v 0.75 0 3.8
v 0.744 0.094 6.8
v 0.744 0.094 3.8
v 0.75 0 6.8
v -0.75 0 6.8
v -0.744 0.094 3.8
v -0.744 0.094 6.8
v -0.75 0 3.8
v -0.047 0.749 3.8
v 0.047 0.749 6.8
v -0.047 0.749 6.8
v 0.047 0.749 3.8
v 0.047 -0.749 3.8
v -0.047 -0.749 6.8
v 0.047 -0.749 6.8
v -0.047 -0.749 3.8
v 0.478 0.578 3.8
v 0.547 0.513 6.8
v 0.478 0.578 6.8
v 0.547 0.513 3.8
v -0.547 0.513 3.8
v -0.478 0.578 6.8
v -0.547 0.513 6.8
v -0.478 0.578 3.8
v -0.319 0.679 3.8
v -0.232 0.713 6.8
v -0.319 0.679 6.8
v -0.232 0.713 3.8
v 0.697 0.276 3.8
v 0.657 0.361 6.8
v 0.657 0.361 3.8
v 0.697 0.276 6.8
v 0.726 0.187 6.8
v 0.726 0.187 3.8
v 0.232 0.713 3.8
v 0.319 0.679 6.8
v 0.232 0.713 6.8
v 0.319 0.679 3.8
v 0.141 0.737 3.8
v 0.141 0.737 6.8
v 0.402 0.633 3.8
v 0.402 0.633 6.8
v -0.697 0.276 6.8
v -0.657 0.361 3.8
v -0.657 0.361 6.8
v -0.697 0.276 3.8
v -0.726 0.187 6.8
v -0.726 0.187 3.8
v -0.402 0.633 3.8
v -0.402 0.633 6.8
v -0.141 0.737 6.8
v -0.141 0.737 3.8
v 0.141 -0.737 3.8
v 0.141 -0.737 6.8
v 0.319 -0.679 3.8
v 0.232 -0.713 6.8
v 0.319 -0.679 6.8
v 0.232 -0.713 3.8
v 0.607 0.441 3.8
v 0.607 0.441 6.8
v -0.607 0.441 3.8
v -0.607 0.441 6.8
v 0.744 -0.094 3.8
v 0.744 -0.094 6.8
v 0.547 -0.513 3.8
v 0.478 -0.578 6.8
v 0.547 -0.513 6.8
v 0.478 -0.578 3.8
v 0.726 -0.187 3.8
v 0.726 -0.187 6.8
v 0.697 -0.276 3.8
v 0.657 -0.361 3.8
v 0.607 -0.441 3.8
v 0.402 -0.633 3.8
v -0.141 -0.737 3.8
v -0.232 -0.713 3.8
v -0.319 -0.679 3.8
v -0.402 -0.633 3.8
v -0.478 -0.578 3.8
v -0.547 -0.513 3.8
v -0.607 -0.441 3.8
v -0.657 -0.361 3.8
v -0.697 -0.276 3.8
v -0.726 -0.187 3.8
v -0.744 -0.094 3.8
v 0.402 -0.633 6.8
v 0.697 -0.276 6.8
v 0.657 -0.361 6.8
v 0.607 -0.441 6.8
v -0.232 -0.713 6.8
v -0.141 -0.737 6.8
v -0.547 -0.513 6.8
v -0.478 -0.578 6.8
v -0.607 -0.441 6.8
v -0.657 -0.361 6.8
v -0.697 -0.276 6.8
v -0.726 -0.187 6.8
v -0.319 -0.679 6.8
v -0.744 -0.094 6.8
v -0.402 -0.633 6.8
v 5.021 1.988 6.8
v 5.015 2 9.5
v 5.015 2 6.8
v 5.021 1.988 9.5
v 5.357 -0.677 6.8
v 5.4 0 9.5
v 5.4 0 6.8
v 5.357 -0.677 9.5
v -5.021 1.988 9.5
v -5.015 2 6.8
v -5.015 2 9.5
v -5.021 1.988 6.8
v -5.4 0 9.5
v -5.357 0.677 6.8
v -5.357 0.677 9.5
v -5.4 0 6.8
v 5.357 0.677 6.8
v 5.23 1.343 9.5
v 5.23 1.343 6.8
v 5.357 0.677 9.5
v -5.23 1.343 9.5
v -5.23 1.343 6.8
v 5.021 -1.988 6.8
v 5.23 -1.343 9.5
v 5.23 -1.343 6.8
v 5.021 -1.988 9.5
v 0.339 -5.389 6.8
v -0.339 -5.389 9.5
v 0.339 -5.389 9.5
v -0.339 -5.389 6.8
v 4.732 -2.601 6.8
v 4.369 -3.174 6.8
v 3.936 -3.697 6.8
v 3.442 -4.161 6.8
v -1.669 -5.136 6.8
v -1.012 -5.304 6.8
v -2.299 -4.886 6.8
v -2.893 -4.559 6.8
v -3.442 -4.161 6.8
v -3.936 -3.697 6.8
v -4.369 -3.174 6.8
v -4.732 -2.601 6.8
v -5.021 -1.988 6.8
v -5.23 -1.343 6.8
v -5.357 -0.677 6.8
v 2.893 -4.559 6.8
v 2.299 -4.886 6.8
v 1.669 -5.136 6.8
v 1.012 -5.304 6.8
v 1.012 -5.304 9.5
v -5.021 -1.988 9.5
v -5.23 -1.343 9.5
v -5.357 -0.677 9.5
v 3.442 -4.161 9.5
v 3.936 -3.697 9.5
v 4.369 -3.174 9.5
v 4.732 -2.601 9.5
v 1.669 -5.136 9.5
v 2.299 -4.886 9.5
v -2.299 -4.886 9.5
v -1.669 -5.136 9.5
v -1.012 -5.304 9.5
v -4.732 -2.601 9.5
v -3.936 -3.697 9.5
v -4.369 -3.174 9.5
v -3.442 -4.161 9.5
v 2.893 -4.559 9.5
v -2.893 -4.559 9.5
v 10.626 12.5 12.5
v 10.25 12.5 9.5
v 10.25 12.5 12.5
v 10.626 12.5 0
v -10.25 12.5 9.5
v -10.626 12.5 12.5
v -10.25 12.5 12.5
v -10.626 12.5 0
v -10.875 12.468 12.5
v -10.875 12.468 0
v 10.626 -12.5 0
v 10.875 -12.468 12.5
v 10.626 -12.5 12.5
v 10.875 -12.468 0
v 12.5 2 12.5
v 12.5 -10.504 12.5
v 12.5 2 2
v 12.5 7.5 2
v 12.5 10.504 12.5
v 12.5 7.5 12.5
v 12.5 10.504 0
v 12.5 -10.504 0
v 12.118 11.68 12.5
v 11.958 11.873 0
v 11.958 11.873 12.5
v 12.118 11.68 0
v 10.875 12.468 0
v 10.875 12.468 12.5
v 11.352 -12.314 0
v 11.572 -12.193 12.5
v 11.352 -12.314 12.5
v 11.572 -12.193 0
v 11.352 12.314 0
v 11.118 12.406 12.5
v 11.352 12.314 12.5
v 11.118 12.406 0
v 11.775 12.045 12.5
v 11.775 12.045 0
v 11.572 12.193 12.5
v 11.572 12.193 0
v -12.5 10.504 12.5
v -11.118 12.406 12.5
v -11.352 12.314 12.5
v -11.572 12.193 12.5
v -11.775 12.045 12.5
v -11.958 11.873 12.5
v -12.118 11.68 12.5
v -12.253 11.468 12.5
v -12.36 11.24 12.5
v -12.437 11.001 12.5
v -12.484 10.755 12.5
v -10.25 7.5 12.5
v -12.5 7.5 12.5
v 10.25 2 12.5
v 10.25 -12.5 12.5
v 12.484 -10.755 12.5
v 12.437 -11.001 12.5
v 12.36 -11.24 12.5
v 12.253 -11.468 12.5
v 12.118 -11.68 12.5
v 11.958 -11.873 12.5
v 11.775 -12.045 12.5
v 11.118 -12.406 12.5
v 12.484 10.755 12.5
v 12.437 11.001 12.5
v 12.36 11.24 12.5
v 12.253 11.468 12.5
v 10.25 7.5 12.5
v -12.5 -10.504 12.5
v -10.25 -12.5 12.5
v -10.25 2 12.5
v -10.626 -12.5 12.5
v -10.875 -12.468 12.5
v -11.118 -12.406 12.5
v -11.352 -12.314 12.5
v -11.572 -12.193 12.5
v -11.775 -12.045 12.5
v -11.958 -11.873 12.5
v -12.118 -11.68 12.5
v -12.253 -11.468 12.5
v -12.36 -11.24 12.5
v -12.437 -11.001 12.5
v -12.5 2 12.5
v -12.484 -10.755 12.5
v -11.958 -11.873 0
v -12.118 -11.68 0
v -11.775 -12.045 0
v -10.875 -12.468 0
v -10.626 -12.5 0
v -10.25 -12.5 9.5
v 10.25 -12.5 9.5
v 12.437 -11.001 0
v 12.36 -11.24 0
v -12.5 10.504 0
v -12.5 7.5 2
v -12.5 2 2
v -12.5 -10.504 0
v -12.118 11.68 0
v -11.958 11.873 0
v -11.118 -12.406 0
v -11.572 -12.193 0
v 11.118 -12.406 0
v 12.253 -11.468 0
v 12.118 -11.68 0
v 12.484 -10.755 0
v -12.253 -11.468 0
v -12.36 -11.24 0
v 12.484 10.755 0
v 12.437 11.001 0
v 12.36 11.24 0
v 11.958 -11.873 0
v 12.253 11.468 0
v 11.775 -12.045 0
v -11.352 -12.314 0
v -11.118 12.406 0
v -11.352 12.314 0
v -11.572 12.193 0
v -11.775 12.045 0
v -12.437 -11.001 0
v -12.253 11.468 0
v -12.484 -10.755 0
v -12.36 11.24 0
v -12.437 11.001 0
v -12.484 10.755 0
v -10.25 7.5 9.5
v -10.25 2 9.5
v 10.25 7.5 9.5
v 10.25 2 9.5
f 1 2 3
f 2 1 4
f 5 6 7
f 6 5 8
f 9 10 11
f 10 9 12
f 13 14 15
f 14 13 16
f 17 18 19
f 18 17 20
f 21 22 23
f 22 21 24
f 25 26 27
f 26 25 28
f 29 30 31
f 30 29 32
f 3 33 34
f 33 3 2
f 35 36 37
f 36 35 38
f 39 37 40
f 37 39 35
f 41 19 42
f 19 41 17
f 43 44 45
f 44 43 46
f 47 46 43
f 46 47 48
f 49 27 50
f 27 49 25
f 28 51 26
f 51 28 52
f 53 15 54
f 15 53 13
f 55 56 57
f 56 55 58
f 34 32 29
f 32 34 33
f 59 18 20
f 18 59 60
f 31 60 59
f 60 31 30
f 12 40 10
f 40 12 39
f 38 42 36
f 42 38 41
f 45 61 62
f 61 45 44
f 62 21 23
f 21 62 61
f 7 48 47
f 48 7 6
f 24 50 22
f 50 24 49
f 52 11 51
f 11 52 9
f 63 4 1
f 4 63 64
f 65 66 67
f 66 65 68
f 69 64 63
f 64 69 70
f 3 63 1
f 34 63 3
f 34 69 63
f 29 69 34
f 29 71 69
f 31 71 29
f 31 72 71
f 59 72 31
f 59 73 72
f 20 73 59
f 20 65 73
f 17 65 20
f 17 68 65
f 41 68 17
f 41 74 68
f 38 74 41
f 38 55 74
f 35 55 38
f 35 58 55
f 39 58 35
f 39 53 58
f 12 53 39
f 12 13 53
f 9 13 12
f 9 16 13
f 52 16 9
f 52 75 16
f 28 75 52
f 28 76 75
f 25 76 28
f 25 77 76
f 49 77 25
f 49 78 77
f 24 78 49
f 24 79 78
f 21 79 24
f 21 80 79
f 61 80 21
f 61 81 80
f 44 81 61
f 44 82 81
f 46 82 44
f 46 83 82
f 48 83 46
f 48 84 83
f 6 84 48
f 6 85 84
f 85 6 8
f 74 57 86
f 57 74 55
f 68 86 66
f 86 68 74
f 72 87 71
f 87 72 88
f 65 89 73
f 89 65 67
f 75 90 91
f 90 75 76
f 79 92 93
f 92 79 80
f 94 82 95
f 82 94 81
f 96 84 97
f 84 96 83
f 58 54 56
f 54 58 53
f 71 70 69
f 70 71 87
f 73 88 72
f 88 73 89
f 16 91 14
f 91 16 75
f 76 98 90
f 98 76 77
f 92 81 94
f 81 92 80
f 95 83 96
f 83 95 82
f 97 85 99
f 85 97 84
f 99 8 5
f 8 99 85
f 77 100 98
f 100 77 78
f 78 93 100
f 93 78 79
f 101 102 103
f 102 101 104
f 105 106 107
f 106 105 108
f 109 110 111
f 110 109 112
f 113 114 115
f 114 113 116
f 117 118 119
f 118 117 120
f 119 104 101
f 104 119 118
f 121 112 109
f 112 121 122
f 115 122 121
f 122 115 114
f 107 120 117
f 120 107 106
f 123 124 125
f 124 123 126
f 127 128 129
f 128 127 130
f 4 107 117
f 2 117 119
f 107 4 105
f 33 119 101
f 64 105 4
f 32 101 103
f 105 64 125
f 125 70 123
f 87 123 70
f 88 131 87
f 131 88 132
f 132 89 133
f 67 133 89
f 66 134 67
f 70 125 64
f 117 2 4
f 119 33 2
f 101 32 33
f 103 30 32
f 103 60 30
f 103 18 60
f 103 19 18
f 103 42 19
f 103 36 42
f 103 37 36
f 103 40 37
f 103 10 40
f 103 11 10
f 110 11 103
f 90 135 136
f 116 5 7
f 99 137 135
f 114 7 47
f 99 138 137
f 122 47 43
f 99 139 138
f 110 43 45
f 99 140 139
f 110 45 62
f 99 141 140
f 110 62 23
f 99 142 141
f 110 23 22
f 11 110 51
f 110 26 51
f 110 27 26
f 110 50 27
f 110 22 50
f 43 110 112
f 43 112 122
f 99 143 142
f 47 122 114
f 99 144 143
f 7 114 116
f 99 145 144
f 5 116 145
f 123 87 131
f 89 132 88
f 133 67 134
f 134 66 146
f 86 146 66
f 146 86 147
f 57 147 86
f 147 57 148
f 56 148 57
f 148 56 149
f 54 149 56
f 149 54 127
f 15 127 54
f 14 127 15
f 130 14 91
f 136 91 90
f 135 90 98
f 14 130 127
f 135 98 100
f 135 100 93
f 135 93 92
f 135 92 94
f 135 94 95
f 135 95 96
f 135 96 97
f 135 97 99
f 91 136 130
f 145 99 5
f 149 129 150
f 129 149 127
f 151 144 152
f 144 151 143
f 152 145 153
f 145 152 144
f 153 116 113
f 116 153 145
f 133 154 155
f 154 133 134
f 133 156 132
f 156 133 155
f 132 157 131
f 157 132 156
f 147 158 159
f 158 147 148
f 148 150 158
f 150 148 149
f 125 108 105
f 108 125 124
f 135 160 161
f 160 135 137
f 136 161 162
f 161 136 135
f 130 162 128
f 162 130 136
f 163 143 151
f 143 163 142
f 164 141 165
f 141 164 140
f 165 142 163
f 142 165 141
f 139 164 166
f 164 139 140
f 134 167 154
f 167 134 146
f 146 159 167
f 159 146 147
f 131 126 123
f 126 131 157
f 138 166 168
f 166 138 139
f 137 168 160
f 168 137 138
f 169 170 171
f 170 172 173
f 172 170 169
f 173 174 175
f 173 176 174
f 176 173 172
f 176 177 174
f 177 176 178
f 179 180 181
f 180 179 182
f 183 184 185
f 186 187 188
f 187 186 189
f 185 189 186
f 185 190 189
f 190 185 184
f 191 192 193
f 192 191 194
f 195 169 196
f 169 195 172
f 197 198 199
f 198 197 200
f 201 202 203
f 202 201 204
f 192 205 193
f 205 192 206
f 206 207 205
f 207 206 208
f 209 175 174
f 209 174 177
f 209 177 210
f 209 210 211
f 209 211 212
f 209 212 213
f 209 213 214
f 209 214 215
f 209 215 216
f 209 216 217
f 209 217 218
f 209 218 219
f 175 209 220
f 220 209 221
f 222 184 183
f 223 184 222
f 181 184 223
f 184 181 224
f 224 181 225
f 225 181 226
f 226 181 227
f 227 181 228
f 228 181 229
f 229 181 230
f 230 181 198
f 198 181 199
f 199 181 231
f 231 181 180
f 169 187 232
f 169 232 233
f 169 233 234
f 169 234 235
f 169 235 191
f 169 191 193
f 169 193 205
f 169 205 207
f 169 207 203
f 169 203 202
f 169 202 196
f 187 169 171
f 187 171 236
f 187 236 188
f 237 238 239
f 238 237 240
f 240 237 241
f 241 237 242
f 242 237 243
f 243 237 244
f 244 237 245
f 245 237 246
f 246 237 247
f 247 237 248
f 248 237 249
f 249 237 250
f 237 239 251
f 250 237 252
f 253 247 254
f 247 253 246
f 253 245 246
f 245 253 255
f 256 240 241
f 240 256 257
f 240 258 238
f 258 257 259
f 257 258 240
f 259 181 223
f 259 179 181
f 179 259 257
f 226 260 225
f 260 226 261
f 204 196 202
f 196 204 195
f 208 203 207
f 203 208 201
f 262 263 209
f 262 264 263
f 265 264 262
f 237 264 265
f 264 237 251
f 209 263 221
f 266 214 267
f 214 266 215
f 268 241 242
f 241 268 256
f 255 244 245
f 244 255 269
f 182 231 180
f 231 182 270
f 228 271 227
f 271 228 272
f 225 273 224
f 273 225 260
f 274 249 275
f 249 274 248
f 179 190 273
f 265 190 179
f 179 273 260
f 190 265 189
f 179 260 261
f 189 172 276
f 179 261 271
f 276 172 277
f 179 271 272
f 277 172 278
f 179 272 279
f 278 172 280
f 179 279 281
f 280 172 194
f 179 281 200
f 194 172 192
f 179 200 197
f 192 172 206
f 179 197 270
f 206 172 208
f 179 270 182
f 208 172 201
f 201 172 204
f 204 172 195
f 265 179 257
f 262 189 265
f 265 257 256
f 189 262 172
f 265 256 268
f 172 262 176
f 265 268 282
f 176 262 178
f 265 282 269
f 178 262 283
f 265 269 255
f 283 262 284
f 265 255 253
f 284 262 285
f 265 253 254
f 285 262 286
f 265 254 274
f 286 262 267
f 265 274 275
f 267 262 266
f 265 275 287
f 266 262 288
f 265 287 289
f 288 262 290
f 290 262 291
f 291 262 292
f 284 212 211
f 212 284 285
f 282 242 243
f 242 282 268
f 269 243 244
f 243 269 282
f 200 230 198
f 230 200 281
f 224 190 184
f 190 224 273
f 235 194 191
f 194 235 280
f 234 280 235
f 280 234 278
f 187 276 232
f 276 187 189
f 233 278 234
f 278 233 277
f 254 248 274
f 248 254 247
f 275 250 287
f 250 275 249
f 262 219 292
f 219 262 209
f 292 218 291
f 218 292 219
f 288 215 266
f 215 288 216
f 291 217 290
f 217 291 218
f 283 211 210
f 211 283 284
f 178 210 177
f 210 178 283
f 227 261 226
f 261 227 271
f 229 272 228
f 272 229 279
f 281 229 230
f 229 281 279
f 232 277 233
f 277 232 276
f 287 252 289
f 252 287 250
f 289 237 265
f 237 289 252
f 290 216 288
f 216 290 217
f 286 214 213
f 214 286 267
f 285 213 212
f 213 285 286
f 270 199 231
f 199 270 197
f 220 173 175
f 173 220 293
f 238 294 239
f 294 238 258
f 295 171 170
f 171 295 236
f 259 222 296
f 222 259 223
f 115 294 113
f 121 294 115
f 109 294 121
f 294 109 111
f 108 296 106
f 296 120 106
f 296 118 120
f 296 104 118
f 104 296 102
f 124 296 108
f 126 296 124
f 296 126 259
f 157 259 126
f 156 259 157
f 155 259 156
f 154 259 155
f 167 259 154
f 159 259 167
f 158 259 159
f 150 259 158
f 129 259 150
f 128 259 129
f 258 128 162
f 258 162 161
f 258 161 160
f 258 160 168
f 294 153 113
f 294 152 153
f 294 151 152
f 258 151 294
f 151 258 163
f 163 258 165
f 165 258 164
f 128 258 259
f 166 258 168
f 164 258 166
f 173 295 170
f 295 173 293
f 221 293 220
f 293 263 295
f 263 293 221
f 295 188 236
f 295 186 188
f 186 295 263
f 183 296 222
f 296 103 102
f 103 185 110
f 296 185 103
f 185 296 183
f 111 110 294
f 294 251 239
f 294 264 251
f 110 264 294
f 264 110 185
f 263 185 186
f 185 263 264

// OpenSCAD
// file: scad-utils/morphology.scad
// Copyright (c) 2013 Oskar Linde. All rights reserved.
// License: BSD
//
// This library contains basic 2D morphology operations
//
// outset(d=1)            - creates a polygon at an offset d outside a 2D shape
// inset(d=1)             - creates a polygon at an offset d inside a 2D shape
// fillet(r=1)            - adds fillets of radius r to all concave corners of a 2D shape
// rounding(r=1)          - adds rounding to all convex corners of a 2D shape
// shell(d,center=false)  - makes a shell of width d along the edge of a 2D shape
//                        - positive values of d places the shell on the outside
//                        - negative values of d places the shell on the inside
//                        - center=true and positive d places the shell centered on the edge

module outset(d=1) {
	// Bug workaround for older OpenSCAD versions
	if (version_num() < 20130424) render() outset_extruded(d) children();
	else minkowski() {
		circle(r=d);
		children();
	}
}

module outset_extruded(d=1) {
   projection(cut=true) minkowski() {
        cylinder(r=d);
        linear_extrude(center=true) children();
   }
}

module inset(d=1) {
	 render() inverse() outset(d=d) inverse() children();
}

module fillet(r=1) {
	inset(d=r) render() outset(d=r) children();
}

module rounding(r=1) {
	outset(d=r) inset(d=r) children();
}

module shell(d,center=false) {
	if (center && d > 0) {
		difference() {
			outset(d=d/2) children();
			inset(d=d/2) children();
		}
	}
	if (!center && d > 0) {
		difference() {
			outset(d=d) children();
			children();
		}
	}
	if (!center && d < 0) {
		difference() {
			children();
			inset(d=-d) children();
		}
	}
	if (d == 0) children();
}


// Below are for internal use only

module inverse() {
	difference() {
		square(1e5,center=true);
		children();
	}
}


// TEST CODE

use <mirror.scad>

module arrow(l=1,w=.6,t=0.15) {
	mirror_y() polygon([[0,0],[l,0],[l-w/2,w/2],[l-w/2-sqrt(2)*t,w/2],[l-t/2-sqrt(2)*t,t/2],[0,t/2]]);
}

module shape() {
	polygon([[0,0],[1,0],[1.5,1],[2.5,1],[2,-1],[0,-1]]);
}

if(0) assign($fn=32) {

	for (p = [0:10*3-1]) assign(o=floor(p/3)) {
		translate([(p%3)*2.5,-o*3]) {
			//%if (p % 3 == 1) translate([0,0,1]) shape();
			if (p % 3 == 0) shape();
			if (p % 3 == 1) translate([0.6,0]) arrow();
			if (p % 3 == 2) {
				if (o == 0) inset(d=0.3) shape();
				if (o == 1) outset(d=0.3) shape();
				if (o == 2) rounding(r=0.3) shape();
				if (o == 3) fillet(r=0.3) shape();
				if (o == 4) shell(d=0.3) shape();
				if (o == 5) shell(d=-0.3) shape();
				if (o == 6) shell(d=0.3,center=true) shape();
				if (o == 7) rounding(r=0.3) fillet(r=0.3) shape();
				if (o == 8) shell(d=0.3,center=true) fillet(r=0.3) rounding(r=0.3) shape();
				if (o == 9) shell(d=-0.3) fillet(r=0.3) rounding(r=0.3) shape();
			}
		}
	}
}
// file: scad-utils/mirror.scad
// Copyright (c) 2013 Oskar Linde. All rights reserved.
// License: BSD
//
// This library contains simple mirroring functions
//
// mirror_x()
// mirror_y()
// mirror_z()


module mirror_x() {
  union() {
    child();
    scale([-1,1,1]) child();
  }
}

module mirror_y() {
  union() {
    child();
    scale([1,-1,1]) child();
  }
}

module mirror_z() {
  union() {
    child();
    scale([1,1,-1]) child();
  }
}
// main file
include <scad-utils/mirror.scad>
include <scad-utils/morphology.scad>

$fn=50;

MG_Z=2.7;
SCREW_Z=3;

CABLE_X=5.5;
CABLE_Z=4.8;

BODY_X=25;
BODY_Y=25;
BODY_TOP_Y=20.5;
BODY_BOTTOM_Z=2;
BODY_TOP_Z=3;
BODY_Z=BODY_TOP_Z + BODY_BOTTOM_Z + MG_Z + CABLE_Z;

difference(){
  // body
  linear_extrude(height=BODY_Z, center=!true, convexity=10, twist=0)
  rounding(r=2)
  square(size=[BODY_X, BODY_Y], center=true);

  // magnet space & screw hole
  translate([0, 0, BODY_Z - SCREW_Z - MG_Z - BODY_TOP_Z]) {
    cylinder(d=1.5, h=MG_Z+SCREW_Z, center=!true);
    translate([0, 0, SCREW_Z])
    cylinder(d=10.8, h=MG_Z + 0.5, center=!true);
  }

  // top space
  translate([0, 0, 10/2 + BODY_Z - BODY_TOP_Z]) 
  cube(size=[BODY_TOP_Y, BODY_Y+1, 10], center=true);

  // cable space
  rotate([0, 0, 90]) 
  translate([CABLE_X/2 + 2, 0, BODY_Z/2 + BODY_BOTTOM_Z]) 
  cube(size=[CABLE_X, BODY_Y*2, BODY_Z], center=true);
}

// cable
rotate([0, 0, 90]) 
%translate([CABLE_X/2+2, 0, CABLE_Z/2 + 2]) 
cube(size=[CABLE_X, BODY_Y*2, CABLE_Z], center=true);
